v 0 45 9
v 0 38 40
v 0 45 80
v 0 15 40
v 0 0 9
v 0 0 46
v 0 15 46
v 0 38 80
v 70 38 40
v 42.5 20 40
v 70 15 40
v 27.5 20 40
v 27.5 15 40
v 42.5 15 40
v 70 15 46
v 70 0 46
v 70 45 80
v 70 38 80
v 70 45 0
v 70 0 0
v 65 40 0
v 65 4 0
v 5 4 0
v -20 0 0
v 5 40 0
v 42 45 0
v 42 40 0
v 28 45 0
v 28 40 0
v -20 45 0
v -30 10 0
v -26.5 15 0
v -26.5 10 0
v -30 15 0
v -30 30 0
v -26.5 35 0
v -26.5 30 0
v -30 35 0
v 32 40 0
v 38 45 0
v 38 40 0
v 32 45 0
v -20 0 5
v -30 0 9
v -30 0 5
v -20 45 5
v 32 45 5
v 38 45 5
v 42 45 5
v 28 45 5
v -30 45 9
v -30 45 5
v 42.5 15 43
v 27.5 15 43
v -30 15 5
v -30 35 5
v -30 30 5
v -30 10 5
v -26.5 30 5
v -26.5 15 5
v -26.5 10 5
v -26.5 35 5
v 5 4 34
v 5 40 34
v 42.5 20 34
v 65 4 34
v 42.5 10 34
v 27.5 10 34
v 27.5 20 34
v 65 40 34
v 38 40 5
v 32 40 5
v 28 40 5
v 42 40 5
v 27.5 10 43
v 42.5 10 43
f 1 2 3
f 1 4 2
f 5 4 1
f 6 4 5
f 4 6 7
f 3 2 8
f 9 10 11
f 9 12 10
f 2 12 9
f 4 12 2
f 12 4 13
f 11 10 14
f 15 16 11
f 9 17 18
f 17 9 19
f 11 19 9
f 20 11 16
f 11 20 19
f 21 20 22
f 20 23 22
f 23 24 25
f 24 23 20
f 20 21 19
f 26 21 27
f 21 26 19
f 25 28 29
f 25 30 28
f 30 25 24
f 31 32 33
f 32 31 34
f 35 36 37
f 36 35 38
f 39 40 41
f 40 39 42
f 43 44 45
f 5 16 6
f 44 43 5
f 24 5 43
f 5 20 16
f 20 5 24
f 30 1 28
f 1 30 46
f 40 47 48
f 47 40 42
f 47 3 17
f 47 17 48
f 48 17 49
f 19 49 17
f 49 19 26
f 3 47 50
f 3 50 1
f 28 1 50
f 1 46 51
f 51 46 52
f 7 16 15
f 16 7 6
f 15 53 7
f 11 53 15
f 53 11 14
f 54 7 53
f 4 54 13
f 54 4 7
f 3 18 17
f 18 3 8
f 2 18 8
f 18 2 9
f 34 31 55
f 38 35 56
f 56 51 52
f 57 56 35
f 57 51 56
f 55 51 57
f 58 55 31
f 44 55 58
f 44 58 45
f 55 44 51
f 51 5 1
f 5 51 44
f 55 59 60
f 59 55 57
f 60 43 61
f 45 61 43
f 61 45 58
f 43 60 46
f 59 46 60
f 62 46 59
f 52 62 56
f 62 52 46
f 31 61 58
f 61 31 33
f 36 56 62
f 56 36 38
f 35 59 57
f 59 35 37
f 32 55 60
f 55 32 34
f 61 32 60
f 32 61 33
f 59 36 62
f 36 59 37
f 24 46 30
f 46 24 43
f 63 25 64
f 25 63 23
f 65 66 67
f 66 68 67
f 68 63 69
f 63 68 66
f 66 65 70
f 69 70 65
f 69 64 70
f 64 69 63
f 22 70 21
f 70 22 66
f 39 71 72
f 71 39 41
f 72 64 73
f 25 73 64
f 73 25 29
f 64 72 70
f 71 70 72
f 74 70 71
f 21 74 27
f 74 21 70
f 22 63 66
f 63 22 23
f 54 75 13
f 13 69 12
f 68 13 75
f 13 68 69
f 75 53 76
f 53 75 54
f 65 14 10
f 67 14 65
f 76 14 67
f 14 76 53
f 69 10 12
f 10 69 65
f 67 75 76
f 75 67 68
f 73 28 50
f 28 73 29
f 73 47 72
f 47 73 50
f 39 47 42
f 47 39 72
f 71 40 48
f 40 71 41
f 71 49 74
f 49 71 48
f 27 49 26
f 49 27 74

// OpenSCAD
//Soporte Teléfono
// L para la carga
difference(){
    union(){
        cube([70,45,40]);
        translate([0,0,30])
            cube([70,15,16]);
        translate([0,38,0])
            cube([70,7,80]);
        translate([-30,0,0])
            cube([35,45,9]);
    }
    union(){
        translate([-31,-1,-1]){
            translate([0,0,0])
                cube([5,11,6]);
            translate([0,36,0])
                cube([5,11,6]);
            translate([0,16,0])
                cube([5,15,6]);
            translate([4.5,0,0])
                cube([6.5,60,6]);
        }
        translate([5,4,-1])
            cube([60,36,35]);
        translate([27.5,10,-1])
            cube([15,10,44]);
        translate([28,30,-1])
            cube([4,16,6]);
        translate([38,30,-1])
            cube([4,16,6]);
    }
}
